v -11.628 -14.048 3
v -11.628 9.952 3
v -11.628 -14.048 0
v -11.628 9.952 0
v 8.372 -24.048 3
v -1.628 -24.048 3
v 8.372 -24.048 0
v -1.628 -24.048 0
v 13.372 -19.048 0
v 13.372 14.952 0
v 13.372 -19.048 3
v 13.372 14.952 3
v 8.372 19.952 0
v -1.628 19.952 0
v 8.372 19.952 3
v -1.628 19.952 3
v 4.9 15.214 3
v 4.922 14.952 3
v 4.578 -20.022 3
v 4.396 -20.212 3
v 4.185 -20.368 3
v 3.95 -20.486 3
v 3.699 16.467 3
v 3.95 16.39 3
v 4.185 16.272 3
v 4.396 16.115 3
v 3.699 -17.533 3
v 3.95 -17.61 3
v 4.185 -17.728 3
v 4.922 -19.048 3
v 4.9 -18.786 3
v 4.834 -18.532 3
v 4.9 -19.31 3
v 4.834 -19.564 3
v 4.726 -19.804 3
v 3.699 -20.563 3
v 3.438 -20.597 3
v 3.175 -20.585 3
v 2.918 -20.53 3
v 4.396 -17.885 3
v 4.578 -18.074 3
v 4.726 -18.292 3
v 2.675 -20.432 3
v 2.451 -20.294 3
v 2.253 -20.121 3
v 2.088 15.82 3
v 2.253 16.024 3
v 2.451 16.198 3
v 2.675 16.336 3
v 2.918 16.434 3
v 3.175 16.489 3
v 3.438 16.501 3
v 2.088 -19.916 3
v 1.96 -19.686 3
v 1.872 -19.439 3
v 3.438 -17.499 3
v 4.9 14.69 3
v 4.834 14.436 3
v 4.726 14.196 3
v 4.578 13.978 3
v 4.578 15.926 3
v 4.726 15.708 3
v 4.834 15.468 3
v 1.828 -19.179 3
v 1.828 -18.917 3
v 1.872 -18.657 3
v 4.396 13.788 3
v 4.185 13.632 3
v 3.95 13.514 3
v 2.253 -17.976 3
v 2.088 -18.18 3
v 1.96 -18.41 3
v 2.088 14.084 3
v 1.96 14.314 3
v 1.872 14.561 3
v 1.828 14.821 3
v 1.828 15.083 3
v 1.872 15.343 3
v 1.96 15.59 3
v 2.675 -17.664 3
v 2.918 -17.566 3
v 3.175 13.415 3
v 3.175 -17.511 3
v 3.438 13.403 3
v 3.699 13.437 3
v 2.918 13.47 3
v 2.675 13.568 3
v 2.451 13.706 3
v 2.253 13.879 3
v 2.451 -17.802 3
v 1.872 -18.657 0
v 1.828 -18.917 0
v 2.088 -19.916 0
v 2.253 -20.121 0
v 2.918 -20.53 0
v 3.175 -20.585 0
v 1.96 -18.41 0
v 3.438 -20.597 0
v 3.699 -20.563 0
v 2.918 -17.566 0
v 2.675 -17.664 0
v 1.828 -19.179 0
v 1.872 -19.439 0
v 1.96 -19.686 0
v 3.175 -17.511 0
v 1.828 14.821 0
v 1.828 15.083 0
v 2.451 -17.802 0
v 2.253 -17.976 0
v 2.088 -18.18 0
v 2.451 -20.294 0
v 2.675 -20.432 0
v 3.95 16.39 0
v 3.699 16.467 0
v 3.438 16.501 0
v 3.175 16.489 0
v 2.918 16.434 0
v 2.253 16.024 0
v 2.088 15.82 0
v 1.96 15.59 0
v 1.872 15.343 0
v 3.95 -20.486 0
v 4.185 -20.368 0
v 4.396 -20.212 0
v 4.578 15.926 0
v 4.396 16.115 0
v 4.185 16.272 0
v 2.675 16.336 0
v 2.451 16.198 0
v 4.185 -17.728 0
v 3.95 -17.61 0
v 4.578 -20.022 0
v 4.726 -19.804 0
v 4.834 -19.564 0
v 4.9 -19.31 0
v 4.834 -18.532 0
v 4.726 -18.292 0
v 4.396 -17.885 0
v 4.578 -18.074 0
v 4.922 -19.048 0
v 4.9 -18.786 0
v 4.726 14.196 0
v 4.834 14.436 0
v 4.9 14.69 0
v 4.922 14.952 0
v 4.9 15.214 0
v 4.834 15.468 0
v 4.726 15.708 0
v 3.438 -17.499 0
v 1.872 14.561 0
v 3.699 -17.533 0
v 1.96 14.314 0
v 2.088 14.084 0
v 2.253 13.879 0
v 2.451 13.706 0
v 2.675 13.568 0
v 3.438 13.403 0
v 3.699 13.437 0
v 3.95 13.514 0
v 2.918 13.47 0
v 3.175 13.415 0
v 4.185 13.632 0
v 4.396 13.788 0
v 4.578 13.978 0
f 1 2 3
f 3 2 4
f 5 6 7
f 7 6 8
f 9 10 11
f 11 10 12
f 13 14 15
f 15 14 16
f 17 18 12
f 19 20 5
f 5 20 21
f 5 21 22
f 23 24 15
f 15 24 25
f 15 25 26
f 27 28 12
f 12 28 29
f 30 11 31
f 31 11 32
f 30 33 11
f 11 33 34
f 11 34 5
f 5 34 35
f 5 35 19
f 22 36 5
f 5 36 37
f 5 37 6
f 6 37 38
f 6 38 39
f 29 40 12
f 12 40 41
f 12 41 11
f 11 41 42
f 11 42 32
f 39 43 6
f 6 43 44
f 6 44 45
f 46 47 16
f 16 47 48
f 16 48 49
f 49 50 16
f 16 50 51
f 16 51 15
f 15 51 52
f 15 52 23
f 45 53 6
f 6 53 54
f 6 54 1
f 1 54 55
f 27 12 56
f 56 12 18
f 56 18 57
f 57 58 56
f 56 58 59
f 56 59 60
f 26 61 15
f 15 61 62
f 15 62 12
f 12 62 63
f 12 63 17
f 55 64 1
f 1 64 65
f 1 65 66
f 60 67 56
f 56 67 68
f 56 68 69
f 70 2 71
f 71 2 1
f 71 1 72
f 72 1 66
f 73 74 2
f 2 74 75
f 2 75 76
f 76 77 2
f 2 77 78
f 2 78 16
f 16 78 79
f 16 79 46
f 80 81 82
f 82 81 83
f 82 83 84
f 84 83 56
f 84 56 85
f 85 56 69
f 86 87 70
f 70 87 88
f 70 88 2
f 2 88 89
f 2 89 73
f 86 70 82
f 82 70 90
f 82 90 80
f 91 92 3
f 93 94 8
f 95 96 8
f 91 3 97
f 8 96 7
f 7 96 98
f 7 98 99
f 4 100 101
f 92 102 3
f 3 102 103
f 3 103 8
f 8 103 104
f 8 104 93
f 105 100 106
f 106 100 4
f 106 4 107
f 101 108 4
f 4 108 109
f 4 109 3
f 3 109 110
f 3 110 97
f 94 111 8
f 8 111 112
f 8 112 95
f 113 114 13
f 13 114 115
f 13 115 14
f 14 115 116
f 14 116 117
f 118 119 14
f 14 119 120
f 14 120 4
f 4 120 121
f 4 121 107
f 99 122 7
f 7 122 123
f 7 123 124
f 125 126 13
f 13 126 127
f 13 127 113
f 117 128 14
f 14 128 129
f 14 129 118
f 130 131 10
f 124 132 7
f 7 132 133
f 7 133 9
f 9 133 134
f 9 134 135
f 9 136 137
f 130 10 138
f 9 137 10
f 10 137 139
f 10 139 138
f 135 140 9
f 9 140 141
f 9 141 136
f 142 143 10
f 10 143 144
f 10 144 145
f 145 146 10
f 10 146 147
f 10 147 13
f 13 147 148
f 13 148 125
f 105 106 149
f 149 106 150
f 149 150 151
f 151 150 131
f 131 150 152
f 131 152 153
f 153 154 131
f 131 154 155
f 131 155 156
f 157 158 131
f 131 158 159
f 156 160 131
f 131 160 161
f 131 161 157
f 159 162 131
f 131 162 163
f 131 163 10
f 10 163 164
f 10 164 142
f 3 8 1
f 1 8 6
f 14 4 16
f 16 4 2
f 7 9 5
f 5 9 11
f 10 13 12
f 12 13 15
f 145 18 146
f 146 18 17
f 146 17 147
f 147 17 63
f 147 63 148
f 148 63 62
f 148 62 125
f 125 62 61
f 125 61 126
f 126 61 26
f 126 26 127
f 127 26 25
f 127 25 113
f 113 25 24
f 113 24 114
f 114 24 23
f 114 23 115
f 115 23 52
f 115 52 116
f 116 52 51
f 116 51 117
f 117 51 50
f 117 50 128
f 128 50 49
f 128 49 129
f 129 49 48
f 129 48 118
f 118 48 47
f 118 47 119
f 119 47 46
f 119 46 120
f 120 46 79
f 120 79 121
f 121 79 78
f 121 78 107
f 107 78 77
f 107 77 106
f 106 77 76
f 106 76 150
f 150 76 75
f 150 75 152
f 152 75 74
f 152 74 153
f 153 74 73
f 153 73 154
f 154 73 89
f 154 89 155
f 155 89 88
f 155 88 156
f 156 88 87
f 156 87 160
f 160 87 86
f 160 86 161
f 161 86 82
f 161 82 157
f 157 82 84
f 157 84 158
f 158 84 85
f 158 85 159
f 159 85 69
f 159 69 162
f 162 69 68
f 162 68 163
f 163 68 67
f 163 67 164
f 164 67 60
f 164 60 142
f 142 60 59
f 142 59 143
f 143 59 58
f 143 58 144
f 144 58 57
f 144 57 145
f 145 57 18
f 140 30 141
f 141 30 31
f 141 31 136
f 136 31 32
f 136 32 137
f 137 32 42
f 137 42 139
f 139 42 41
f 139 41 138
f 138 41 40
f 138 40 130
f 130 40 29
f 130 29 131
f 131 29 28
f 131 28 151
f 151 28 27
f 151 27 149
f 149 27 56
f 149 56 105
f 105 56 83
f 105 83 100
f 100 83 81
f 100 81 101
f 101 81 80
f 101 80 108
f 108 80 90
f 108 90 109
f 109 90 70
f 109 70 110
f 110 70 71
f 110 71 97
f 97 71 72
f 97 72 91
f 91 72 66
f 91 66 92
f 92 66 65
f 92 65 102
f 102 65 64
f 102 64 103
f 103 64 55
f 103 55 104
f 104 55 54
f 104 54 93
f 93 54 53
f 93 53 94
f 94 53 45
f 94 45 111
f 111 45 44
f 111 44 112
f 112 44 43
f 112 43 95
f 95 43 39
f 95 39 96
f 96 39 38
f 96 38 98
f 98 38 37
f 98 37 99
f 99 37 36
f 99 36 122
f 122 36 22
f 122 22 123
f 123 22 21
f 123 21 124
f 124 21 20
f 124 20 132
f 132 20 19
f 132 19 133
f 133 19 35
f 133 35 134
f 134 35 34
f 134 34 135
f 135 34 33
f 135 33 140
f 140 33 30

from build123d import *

# Parameters (mm, degrees)
SKETCH1_W           = 25
SKETCH1_H           = 44
BOSS_EXTRUDE1_DEPTH = 3
CHAMFER1_SIZE       = 10
CHAMFER2_SIZE       = 5
SKETCH2_R           = 1.55
CUT_EXTRUDE1_DEPTH  = 3


with BuildPart() as part:
    # Sketch1 → Boss-Extrude1 (new body)
    with BuildSketch(Plane.XY):
        with Locations((0.872372372, -2.048048048)):
            Rectangle(SKETCH1_W, SKETCH1_H)
    extrude(amount=BOSS_EXTRUDE1_DEPTH)

    # Chamfer1
    chamfer1_edges = [part.edges().sort_by_distance(p)[0] for p in [
        (-11.627627628, 19.951951952, 1.5),
        (-11.627627628, -24.048048048, 1.5),
    ]]
    chamfer(chamfer1_edges, length=CHAMFER1_SIZE)

    # Chamfer2
    chamfer2_edges = [part.edges().sort_by_distance(p)[0] for p in [
        (13.372372372, 19.951951952, 1.5),
        (13.372372372, -24.048048048, 1.5),
    ]]
    chamfer(chamfer2_edges, length=CHAMFER2_SIZE)

    # Sketch2 → Cut-Extrude1 (cut)
    with BuildSketch(Plane.XY.offset(3)):
        with Locations((3.372372372, 14.951951952)):
            Circle(SKETCH2_R)
        with Locations((3.372372372, -19.048048048)):
            Circle(SKETCH2_R)
    extrude(amount=-CUT_EXTRUDE1_DEPTH, mode=Mode.SUBTRACT)


solid = part.part
